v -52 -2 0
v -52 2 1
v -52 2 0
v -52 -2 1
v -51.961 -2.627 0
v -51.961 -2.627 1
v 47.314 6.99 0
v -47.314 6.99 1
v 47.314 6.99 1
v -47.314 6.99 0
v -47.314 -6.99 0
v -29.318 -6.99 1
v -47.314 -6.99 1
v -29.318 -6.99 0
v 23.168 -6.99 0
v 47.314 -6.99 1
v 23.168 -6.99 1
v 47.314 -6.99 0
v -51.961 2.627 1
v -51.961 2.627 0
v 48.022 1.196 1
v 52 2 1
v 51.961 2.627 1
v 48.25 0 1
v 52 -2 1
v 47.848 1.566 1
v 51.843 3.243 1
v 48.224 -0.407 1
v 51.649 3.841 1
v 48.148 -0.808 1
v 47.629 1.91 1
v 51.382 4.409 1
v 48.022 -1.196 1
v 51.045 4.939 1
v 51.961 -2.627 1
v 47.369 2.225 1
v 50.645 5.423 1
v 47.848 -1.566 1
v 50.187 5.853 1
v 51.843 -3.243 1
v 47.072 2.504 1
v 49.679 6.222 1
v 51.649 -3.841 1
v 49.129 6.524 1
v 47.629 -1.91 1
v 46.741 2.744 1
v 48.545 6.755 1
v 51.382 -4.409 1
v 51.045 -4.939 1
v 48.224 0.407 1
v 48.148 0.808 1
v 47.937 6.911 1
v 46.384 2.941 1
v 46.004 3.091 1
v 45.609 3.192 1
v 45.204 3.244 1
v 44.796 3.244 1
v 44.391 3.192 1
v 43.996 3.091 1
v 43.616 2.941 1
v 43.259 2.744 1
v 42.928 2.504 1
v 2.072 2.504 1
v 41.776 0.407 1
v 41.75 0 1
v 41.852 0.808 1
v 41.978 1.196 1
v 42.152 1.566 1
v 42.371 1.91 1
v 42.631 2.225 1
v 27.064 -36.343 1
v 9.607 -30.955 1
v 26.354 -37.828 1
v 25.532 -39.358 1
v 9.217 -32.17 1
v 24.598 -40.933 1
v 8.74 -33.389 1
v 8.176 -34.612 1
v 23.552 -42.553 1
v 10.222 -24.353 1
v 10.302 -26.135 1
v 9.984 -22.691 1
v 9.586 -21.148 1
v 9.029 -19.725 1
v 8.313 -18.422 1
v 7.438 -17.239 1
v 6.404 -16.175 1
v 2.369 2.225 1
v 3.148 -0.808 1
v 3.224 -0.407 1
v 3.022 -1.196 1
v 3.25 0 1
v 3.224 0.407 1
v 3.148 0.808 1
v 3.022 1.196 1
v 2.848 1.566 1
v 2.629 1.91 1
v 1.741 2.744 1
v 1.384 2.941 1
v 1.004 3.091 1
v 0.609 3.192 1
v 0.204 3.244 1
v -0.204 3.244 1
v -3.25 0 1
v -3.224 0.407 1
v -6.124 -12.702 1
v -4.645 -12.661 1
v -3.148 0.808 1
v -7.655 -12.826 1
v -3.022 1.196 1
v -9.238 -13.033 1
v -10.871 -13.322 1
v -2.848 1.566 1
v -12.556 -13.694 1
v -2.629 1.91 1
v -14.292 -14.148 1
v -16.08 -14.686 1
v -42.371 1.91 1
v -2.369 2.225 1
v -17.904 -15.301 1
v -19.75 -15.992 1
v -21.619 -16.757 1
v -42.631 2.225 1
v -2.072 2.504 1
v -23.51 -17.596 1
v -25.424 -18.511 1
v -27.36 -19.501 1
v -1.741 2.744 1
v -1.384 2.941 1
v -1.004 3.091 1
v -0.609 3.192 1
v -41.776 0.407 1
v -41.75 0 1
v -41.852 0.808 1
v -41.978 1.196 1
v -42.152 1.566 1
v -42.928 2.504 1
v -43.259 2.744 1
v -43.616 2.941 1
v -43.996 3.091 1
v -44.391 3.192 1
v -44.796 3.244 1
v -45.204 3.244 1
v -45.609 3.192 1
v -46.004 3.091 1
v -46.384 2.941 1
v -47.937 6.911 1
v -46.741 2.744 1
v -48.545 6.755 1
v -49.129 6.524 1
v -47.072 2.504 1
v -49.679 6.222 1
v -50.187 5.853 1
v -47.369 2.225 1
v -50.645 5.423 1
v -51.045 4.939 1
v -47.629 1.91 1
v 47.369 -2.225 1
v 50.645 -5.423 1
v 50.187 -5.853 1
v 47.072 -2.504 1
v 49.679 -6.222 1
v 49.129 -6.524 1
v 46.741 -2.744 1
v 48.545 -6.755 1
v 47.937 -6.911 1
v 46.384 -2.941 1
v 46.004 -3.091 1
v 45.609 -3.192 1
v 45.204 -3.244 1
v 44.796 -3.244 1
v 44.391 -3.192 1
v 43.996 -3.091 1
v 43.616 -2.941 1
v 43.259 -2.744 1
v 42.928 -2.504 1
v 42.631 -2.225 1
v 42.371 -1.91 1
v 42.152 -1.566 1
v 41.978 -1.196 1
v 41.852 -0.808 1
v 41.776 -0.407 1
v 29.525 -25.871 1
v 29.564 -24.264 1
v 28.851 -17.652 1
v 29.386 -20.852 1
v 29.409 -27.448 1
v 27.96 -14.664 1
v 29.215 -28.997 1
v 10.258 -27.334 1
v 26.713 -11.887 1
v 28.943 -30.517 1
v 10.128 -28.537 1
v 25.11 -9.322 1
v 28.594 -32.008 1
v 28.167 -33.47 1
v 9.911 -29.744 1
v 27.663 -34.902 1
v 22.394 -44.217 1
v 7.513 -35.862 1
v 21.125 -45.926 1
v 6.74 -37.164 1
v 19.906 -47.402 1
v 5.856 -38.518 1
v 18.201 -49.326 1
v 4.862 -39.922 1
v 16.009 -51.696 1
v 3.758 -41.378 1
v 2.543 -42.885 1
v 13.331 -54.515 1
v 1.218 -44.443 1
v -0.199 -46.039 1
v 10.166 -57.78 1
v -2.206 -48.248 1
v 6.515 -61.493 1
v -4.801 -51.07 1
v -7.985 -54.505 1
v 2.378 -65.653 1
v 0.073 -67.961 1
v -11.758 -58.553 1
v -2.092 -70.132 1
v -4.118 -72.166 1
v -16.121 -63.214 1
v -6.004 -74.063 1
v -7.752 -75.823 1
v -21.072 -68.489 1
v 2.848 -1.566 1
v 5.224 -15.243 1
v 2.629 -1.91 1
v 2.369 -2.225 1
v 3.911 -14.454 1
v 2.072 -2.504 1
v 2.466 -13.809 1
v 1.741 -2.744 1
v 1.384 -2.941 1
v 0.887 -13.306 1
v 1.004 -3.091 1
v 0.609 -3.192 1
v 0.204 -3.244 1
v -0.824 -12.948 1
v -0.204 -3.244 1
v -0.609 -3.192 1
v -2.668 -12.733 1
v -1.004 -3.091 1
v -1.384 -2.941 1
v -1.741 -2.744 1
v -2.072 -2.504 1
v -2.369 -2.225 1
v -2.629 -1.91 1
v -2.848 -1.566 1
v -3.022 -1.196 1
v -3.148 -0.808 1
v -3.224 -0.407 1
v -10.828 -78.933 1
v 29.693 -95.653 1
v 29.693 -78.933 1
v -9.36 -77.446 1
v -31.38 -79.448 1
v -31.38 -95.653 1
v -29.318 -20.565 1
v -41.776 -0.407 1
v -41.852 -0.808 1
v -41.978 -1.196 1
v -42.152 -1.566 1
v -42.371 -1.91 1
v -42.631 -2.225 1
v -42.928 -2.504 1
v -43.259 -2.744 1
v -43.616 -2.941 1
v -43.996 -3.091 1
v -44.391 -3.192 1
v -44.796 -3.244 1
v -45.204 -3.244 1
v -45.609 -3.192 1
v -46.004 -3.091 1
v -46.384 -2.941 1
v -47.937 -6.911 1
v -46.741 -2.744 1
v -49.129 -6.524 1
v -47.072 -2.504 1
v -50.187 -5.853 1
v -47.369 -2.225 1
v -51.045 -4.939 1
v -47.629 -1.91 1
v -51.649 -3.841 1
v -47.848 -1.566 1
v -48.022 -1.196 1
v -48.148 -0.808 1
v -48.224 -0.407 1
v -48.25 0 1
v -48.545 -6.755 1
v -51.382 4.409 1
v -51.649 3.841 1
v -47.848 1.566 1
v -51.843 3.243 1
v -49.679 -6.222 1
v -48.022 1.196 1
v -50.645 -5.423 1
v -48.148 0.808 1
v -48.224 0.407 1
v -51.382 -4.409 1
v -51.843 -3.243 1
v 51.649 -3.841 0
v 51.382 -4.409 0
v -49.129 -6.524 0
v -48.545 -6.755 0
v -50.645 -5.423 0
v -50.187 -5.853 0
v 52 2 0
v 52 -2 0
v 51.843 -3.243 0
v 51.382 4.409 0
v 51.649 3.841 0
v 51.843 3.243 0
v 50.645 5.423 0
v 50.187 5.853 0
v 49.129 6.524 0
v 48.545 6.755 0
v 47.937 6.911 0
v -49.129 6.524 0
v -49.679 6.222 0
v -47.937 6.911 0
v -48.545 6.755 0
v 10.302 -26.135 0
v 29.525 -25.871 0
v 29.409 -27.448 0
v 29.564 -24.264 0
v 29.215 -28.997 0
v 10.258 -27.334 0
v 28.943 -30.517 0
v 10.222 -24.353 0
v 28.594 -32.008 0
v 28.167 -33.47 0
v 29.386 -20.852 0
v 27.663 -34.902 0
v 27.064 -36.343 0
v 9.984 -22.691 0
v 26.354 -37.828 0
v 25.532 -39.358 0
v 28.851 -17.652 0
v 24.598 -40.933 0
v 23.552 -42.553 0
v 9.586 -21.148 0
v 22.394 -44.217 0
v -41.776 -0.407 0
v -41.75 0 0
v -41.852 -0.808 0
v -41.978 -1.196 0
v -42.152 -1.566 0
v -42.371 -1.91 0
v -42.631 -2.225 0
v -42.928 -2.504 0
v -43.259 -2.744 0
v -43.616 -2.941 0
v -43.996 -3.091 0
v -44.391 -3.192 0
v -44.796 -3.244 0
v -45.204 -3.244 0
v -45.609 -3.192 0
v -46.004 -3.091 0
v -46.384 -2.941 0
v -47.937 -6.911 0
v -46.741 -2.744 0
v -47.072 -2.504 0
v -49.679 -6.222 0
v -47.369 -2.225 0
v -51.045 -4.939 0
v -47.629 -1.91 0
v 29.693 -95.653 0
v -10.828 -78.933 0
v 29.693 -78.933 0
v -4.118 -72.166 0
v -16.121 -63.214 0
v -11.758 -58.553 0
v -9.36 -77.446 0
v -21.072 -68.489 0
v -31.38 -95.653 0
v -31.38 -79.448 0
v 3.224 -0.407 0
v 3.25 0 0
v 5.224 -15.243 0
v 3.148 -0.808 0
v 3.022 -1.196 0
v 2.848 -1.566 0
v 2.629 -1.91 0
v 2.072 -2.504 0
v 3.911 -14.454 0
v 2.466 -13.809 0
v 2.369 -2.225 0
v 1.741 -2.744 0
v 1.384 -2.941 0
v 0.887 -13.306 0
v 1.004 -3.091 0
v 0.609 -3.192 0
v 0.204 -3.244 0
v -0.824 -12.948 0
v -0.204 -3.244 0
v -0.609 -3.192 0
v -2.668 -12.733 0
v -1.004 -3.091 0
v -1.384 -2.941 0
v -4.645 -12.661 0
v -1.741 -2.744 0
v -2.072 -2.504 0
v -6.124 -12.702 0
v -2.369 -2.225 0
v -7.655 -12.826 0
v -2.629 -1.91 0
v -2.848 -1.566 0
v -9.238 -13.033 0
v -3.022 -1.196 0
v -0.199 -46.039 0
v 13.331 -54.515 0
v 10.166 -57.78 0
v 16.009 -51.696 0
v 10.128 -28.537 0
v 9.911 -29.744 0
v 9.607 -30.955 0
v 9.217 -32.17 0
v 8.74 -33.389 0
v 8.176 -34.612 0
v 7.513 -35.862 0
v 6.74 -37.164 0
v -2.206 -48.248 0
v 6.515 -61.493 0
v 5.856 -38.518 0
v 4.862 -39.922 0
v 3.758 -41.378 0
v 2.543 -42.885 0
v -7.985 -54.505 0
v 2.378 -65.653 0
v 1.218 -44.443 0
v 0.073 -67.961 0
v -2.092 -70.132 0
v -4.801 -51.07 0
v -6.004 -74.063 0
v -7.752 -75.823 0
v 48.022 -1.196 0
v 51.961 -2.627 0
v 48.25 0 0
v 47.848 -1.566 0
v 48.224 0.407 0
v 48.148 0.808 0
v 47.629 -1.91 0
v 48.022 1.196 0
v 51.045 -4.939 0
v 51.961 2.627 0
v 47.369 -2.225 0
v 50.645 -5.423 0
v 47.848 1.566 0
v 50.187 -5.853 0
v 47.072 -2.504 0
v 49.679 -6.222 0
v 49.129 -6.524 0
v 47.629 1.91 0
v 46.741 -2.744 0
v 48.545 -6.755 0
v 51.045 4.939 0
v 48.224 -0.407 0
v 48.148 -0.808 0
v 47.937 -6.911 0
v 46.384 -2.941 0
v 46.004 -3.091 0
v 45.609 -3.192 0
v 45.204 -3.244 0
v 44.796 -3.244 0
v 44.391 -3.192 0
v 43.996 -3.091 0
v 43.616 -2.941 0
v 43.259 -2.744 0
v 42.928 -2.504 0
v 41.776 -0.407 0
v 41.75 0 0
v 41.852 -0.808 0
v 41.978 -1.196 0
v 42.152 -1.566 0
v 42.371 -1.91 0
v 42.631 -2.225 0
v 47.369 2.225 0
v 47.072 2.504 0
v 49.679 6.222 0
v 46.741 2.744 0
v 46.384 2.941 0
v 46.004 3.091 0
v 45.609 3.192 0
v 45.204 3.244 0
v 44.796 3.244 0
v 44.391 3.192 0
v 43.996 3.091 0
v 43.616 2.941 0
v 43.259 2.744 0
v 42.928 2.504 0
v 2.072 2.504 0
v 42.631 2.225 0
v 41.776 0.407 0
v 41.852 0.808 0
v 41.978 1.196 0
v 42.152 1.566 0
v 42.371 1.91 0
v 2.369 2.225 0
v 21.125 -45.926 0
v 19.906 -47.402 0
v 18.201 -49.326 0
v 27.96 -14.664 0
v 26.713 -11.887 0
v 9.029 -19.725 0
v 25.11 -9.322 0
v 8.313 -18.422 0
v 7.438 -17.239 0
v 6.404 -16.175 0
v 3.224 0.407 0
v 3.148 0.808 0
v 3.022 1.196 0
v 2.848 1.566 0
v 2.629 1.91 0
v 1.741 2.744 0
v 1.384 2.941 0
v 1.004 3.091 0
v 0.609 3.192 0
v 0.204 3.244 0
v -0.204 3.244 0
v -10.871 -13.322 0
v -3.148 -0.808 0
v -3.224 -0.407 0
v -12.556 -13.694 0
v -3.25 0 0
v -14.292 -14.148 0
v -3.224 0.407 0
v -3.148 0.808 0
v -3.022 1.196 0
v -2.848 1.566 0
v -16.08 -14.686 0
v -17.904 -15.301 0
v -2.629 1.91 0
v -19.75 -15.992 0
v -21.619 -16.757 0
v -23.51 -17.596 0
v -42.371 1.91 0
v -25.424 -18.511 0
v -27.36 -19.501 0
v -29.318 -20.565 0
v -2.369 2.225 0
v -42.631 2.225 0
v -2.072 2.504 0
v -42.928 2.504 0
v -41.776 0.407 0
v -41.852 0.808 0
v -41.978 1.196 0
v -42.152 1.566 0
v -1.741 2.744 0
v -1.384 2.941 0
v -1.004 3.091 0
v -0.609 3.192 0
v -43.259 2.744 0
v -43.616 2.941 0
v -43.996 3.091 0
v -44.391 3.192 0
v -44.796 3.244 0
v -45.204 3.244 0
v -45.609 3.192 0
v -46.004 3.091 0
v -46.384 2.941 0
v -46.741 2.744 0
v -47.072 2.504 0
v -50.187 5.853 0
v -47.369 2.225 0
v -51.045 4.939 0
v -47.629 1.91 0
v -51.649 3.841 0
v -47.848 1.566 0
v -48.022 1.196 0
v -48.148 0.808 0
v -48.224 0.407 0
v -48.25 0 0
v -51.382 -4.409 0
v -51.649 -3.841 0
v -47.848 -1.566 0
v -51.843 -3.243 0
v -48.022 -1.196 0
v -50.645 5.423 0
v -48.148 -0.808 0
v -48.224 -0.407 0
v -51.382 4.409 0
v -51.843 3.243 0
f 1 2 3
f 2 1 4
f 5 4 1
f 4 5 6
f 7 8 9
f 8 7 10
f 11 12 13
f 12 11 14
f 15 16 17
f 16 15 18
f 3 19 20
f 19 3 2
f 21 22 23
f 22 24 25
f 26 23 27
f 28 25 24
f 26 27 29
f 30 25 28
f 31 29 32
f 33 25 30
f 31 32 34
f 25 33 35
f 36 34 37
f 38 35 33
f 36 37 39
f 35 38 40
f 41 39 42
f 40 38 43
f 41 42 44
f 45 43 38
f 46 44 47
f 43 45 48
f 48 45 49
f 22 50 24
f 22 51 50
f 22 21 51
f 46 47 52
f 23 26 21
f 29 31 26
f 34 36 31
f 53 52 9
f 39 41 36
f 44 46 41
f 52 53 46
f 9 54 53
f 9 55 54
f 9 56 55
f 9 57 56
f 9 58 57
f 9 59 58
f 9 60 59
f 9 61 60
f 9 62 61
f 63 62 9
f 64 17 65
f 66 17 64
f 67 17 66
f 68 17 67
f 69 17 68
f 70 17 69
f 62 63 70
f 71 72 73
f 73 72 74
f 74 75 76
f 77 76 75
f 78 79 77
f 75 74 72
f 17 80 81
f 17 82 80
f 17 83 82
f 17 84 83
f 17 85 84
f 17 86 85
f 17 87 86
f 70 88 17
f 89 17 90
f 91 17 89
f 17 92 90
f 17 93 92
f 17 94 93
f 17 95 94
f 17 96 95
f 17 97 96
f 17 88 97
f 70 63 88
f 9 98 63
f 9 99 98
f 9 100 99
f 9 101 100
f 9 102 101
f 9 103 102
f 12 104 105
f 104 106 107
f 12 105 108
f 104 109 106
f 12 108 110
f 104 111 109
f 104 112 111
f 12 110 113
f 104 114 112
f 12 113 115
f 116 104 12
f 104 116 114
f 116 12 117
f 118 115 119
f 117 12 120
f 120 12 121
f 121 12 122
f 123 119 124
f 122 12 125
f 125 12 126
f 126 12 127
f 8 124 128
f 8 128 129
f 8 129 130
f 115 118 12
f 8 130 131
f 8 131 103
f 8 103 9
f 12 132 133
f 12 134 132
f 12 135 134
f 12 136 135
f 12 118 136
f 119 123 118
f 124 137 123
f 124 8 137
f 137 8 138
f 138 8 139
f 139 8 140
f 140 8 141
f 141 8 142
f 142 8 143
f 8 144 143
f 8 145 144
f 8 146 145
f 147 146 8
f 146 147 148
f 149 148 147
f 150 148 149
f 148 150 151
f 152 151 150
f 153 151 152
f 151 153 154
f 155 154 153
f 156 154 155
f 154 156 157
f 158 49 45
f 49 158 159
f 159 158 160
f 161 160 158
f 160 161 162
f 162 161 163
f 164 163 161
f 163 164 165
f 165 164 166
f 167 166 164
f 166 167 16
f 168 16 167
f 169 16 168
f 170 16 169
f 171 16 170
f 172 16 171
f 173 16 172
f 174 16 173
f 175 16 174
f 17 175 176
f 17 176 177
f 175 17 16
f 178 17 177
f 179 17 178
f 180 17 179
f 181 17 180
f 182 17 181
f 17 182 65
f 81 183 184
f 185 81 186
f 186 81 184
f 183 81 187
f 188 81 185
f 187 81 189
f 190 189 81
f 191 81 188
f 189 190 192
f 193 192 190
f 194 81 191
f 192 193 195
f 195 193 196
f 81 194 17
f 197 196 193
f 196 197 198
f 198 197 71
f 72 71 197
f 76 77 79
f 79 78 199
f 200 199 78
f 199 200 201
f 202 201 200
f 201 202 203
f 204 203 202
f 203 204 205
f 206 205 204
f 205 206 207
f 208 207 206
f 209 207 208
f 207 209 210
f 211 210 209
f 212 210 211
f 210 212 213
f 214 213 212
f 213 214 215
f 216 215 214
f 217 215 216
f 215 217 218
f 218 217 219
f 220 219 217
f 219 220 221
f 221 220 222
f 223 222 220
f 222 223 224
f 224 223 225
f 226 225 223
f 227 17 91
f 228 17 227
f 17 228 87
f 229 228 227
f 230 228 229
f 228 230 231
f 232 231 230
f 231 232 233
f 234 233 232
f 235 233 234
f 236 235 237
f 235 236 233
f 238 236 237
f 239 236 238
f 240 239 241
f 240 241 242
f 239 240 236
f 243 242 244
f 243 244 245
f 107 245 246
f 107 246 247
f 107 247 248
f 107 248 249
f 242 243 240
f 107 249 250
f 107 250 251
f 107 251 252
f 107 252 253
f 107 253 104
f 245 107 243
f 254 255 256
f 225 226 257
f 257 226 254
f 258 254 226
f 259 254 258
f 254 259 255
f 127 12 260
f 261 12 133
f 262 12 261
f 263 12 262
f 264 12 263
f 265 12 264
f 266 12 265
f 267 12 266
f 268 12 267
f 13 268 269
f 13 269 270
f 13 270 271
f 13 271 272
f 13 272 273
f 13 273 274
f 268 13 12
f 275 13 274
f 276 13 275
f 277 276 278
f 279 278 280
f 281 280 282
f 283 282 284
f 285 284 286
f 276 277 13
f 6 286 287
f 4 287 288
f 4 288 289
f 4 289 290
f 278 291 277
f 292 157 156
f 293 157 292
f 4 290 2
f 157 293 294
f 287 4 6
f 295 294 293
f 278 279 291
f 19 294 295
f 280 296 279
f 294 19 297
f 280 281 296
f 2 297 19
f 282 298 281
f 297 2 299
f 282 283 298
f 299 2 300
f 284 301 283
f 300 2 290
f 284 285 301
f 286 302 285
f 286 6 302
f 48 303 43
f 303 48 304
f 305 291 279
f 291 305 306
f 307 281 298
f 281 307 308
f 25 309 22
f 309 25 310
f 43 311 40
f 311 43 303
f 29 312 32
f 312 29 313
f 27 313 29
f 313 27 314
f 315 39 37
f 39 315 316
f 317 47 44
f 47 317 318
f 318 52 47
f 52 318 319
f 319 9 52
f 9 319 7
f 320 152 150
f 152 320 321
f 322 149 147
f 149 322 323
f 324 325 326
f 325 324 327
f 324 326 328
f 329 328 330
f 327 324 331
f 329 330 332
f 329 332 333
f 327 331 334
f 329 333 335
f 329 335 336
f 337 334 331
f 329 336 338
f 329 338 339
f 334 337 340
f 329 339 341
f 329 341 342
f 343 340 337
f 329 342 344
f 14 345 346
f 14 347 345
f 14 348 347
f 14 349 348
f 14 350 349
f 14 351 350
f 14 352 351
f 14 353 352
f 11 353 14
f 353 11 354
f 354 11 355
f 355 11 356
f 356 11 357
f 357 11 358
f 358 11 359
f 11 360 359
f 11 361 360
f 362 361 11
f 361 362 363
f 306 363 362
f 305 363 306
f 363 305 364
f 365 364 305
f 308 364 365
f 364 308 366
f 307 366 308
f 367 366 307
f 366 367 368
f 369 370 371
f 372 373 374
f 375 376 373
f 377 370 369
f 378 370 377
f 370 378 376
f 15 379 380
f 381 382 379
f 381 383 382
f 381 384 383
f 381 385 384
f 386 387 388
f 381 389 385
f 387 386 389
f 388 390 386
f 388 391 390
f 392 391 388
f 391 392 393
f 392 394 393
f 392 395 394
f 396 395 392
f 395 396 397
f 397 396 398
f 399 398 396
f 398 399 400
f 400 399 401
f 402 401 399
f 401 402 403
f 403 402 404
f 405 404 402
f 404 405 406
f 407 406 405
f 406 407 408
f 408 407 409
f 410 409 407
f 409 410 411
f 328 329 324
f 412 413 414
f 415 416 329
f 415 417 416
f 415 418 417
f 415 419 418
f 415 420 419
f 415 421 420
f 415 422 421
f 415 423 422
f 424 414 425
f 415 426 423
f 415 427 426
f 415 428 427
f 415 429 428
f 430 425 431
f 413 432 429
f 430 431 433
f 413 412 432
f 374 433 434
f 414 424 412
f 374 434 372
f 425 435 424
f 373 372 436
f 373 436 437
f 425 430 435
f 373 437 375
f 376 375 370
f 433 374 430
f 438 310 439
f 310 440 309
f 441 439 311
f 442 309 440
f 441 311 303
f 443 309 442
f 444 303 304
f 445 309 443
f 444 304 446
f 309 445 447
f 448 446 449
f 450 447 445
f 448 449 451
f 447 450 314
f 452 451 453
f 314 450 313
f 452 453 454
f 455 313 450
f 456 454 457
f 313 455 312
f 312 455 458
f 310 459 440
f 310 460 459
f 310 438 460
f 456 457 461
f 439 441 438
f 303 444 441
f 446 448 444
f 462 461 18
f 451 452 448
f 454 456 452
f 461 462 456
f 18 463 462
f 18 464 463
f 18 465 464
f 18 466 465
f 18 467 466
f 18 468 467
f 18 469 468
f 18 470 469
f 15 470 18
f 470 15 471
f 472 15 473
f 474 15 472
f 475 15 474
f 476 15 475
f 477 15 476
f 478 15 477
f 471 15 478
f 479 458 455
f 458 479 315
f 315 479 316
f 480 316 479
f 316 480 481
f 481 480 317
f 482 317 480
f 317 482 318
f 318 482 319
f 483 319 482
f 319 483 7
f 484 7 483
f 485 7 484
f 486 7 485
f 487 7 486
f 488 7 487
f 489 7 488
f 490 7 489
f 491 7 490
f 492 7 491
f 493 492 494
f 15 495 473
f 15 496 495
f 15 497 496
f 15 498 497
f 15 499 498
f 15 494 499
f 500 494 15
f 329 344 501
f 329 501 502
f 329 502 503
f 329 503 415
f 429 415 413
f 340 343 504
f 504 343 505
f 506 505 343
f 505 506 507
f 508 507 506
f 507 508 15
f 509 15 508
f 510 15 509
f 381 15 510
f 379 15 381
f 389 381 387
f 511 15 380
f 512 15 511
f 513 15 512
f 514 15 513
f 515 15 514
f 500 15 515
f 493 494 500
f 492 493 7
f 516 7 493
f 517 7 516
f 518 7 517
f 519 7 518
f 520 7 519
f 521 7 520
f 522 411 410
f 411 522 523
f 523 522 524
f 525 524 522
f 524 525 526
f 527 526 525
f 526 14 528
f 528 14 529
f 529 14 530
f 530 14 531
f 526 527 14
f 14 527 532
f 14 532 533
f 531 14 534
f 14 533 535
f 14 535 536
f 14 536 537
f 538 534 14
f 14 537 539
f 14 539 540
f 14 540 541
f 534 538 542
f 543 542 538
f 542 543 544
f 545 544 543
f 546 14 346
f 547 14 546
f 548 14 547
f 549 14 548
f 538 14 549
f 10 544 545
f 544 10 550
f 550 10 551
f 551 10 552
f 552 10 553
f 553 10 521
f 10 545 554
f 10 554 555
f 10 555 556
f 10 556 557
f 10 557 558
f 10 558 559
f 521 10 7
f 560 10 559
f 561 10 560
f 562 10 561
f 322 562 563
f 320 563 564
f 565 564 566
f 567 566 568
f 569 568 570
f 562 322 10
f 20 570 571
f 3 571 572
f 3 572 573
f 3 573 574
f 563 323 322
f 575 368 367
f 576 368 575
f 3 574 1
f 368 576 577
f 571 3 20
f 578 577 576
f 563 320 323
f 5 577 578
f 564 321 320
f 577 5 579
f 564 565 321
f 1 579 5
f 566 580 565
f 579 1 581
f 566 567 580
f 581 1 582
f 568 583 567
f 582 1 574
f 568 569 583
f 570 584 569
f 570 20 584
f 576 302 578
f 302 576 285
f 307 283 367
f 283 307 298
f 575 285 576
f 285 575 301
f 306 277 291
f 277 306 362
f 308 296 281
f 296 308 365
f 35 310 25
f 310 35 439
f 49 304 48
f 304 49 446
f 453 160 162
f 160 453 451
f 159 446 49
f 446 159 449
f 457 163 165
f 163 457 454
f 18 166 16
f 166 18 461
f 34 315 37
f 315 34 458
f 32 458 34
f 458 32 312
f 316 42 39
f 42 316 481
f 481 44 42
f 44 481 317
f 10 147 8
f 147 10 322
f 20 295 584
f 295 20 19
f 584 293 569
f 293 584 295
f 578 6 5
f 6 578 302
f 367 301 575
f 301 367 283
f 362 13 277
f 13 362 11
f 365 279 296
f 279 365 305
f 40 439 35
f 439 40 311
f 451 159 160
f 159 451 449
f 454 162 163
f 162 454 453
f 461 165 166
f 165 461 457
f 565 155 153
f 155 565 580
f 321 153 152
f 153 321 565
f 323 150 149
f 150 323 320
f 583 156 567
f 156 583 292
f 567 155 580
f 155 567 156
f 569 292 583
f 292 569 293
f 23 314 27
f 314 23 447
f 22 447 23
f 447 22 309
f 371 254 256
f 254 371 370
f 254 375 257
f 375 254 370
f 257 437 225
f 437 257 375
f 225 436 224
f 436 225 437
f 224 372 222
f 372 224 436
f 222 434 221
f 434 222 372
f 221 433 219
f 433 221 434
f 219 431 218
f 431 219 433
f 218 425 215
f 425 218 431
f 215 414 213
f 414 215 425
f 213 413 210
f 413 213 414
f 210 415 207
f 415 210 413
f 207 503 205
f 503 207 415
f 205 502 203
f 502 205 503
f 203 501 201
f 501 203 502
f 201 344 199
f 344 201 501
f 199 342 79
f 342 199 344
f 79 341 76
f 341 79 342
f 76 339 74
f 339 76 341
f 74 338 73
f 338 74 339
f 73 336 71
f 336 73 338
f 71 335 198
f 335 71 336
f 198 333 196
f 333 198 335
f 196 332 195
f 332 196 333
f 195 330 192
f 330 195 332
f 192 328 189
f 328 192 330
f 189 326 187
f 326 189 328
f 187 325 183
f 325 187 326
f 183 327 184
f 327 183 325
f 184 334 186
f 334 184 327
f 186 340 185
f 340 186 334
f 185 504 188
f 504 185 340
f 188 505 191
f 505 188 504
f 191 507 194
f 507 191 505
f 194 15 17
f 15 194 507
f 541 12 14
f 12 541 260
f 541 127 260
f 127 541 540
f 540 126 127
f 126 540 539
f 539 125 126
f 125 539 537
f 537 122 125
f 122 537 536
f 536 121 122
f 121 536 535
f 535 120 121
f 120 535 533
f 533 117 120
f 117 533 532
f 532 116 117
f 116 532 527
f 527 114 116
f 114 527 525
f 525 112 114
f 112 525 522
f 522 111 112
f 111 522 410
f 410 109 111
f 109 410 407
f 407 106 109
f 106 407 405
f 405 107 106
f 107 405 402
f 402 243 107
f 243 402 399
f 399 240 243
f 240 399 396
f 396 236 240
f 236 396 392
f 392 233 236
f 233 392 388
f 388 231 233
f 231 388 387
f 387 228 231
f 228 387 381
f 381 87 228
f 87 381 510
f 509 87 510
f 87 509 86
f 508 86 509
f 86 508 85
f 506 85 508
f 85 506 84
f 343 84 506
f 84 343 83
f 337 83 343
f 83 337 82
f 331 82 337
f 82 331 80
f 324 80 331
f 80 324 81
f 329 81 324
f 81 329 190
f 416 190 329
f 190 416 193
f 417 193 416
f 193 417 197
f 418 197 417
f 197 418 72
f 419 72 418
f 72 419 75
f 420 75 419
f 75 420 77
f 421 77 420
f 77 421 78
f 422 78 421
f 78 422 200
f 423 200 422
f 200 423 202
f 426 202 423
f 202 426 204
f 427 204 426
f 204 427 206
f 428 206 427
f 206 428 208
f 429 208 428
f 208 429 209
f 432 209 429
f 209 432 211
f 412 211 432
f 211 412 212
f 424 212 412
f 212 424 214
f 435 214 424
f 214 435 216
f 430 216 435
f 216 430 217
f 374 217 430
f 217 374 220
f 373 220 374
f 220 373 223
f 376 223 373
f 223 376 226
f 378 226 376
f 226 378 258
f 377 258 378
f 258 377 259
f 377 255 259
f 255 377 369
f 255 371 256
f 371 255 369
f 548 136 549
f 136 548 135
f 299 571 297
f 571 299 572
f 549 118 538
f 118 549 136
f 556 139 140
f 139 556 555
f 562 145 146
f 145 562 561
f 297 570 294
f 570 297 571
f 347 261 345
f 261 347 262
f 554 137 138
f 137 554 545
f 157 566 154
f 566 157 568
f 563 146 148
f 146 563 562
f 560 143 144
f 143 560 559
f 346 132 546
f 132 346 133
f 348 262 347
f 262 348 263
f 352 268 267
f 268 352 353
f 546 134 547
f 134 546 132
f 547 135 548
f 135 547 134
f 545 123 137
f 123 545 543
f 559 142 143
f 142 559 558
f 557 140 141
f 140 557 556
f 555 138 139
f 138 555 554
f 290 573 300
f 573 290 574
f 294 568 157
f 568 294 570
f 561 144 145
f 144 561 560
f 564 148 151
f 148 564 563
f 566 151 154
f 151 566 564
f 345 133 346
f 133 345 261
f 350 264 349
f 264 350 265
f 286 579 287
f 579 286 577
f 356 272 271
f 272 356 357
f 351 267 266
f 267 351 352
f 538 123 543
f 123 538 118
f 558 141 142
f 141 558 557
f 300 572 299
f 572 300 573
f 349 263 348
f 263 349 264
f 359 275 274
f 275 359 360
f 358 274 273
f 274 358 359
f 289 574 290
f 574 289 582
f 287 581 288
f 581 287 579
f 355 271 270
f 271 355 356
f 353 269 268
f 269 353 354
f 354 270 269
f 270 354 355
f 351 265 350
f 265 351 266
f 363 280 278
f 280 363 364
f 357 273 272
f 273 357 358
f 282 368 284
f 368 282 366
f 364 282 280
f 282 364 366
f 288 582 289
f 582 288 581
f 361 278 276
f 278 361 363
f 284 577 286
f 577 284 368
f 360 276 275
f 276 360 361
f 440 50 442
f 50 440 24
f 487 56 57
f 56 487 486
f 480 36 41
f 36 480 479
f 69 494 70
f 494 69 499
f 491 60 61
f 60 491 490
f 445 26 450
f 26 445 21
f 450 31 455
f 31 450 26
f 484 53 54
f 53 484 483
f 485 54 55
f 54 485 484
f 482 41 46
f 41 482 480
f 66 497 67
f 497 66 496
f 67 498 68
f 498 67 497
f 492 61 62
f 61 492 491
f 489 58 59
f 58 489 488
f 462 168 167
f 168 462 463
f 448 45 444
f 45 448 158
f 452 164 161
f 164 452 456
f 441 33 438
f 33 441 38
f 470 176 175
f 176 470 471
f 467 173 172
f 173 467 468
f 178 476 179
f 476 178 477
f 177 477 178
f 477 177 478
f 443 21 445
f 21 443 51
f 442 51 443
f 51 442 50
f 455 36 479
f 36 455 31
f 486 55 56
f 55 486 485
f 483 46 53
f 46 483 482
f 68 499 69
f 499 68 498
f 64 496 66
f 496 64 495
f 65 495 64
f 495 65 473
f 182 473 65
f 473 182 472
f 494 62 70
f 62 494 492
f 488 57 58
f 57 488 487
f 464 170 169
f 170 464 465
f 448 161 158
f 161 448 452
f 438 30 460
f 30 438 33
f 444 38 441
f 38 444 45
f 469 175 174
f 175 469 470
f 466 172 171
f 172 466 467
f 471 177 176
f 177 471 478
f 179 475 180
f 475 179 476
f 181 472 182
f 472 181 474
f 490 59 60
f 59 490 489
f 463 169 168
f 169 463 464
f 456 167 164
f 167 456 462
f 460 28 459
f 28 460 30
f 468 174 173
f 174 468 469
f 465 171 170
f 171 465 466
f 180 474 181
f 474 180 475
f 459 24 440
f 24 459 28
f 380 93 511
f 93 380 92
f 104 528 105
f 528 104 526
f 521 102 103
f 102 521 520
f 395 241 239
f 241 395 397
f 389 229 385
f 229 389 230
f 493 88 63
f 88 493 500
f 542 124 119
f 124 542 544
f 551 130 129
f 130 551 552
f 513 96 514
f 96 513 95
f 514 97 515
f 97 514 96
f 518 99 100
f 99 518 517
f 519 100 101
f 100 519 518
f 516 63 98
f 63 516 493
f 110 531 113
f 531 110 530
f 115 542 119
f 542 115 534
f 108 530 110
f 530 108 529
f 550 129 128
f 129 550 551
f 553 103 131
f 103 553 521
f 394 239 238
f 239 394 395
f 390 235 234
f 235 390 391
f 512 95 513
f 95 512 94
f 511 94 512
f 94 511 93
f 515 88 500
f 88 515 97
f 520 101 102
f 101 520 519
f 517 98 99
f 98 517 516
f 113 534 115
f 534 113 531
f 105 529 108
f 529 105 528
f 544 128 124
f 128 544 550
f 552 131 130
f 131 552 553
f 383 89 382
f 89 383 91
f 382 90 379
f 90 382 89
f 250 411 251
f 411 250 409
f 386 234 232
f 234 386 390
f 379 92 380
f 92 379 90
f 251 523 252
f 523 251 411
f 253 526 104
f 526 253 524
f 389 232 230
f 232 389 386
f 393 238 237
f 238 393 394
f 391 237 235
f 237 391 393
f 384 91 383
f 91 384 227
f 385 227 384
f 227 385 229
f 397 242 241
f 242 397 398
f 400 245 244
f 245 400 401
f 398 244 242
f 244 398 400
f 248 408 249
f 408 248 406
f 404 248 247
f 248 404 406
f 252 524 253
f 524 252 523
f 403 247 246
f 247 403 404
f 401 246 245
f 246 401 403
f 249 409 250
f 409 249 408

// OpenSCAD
$fn = 50;


difference() {
	union() {
		translate(v = [0, 0, 0]) {
			rotate(a = [0, 0, 0]) {
				hull() {
					translate(v = [-47.0000000000, 2.0000000000, 0]) {
						rotate(a = [0, 0, 0]) {
							translate(v = [0, 0, 0]) {
								rotate(a = [0, 0, 0]) {
									cylinder(h = 1, r = 5);
								}
							}
						}
					}
					translate(v = [47.0000000000, 2.0000000000, 0]) {
						rotate(a = [0, 0, 0]) {
							translate(v = [0, 0, 0]) {
								rotate(a = [0, 0, 0]) {
									cylinder(h = 1, r = 5);
								}
							}
						}
					}
					translate(v = [-47.0000000000, -2.0000000000, 0]) {
						rotate(a = [0, 0, 0]) {
							translate(v = [0, 0, 0]) {
								rotate(a = [0, 0, 0]) {
									cylinder(h = 1, r = 5);
								}
							}
						}
					}
					translate(v = [47.0000000000, -2.0000000000, 0]) {
						rotate(a = [0, 0, 0]) {
							translate(v = [0, 0, 0]) {
								rotate(a = [0, 0, 0]) {
									cylinder(h = 1, r = 5);
								}
							}
						}
					}
				}
			}
		}
		translate(v = [0, 0, 0]) {
			rotate(a = [0, 0, 0]) {
				linear_extrude(height = 1) {
					text(font = "DejaVu Sans Mono:style=Bold", halign = "center", size = 95, text = "2", valign = "top");
				}
			}
		}
	}
	union() {
		translate(v = [-45.0000000000, 0.0000000000, -125.0000000000]) {
			rotate(a = [0, 0, 0]) {
				cylinder(h = 250, r = 3.2500000000);
			}
		}
		translate(v = [45.0000000000, 0.0000000000, -125.0000000000]) {
			rotate(a = [0, 0, 0]) {
				cylinder(h = 250, r = 3.2500000000);
			}
		}
		translate(v = [45.0000000000, 0.0000000000, -125.0000000000]) {
			rotate(a = [0, 0, 0]) {
				cylinder(h = 250, r = 3.2500000000);
			}
		}
		translate(v = [0, 0, -125.0000000000]) {
			rotate(a = [0, 0, 0]) {
				cylinder(h = 250, r = 3.2500000000);
			}
		}
	}
}
